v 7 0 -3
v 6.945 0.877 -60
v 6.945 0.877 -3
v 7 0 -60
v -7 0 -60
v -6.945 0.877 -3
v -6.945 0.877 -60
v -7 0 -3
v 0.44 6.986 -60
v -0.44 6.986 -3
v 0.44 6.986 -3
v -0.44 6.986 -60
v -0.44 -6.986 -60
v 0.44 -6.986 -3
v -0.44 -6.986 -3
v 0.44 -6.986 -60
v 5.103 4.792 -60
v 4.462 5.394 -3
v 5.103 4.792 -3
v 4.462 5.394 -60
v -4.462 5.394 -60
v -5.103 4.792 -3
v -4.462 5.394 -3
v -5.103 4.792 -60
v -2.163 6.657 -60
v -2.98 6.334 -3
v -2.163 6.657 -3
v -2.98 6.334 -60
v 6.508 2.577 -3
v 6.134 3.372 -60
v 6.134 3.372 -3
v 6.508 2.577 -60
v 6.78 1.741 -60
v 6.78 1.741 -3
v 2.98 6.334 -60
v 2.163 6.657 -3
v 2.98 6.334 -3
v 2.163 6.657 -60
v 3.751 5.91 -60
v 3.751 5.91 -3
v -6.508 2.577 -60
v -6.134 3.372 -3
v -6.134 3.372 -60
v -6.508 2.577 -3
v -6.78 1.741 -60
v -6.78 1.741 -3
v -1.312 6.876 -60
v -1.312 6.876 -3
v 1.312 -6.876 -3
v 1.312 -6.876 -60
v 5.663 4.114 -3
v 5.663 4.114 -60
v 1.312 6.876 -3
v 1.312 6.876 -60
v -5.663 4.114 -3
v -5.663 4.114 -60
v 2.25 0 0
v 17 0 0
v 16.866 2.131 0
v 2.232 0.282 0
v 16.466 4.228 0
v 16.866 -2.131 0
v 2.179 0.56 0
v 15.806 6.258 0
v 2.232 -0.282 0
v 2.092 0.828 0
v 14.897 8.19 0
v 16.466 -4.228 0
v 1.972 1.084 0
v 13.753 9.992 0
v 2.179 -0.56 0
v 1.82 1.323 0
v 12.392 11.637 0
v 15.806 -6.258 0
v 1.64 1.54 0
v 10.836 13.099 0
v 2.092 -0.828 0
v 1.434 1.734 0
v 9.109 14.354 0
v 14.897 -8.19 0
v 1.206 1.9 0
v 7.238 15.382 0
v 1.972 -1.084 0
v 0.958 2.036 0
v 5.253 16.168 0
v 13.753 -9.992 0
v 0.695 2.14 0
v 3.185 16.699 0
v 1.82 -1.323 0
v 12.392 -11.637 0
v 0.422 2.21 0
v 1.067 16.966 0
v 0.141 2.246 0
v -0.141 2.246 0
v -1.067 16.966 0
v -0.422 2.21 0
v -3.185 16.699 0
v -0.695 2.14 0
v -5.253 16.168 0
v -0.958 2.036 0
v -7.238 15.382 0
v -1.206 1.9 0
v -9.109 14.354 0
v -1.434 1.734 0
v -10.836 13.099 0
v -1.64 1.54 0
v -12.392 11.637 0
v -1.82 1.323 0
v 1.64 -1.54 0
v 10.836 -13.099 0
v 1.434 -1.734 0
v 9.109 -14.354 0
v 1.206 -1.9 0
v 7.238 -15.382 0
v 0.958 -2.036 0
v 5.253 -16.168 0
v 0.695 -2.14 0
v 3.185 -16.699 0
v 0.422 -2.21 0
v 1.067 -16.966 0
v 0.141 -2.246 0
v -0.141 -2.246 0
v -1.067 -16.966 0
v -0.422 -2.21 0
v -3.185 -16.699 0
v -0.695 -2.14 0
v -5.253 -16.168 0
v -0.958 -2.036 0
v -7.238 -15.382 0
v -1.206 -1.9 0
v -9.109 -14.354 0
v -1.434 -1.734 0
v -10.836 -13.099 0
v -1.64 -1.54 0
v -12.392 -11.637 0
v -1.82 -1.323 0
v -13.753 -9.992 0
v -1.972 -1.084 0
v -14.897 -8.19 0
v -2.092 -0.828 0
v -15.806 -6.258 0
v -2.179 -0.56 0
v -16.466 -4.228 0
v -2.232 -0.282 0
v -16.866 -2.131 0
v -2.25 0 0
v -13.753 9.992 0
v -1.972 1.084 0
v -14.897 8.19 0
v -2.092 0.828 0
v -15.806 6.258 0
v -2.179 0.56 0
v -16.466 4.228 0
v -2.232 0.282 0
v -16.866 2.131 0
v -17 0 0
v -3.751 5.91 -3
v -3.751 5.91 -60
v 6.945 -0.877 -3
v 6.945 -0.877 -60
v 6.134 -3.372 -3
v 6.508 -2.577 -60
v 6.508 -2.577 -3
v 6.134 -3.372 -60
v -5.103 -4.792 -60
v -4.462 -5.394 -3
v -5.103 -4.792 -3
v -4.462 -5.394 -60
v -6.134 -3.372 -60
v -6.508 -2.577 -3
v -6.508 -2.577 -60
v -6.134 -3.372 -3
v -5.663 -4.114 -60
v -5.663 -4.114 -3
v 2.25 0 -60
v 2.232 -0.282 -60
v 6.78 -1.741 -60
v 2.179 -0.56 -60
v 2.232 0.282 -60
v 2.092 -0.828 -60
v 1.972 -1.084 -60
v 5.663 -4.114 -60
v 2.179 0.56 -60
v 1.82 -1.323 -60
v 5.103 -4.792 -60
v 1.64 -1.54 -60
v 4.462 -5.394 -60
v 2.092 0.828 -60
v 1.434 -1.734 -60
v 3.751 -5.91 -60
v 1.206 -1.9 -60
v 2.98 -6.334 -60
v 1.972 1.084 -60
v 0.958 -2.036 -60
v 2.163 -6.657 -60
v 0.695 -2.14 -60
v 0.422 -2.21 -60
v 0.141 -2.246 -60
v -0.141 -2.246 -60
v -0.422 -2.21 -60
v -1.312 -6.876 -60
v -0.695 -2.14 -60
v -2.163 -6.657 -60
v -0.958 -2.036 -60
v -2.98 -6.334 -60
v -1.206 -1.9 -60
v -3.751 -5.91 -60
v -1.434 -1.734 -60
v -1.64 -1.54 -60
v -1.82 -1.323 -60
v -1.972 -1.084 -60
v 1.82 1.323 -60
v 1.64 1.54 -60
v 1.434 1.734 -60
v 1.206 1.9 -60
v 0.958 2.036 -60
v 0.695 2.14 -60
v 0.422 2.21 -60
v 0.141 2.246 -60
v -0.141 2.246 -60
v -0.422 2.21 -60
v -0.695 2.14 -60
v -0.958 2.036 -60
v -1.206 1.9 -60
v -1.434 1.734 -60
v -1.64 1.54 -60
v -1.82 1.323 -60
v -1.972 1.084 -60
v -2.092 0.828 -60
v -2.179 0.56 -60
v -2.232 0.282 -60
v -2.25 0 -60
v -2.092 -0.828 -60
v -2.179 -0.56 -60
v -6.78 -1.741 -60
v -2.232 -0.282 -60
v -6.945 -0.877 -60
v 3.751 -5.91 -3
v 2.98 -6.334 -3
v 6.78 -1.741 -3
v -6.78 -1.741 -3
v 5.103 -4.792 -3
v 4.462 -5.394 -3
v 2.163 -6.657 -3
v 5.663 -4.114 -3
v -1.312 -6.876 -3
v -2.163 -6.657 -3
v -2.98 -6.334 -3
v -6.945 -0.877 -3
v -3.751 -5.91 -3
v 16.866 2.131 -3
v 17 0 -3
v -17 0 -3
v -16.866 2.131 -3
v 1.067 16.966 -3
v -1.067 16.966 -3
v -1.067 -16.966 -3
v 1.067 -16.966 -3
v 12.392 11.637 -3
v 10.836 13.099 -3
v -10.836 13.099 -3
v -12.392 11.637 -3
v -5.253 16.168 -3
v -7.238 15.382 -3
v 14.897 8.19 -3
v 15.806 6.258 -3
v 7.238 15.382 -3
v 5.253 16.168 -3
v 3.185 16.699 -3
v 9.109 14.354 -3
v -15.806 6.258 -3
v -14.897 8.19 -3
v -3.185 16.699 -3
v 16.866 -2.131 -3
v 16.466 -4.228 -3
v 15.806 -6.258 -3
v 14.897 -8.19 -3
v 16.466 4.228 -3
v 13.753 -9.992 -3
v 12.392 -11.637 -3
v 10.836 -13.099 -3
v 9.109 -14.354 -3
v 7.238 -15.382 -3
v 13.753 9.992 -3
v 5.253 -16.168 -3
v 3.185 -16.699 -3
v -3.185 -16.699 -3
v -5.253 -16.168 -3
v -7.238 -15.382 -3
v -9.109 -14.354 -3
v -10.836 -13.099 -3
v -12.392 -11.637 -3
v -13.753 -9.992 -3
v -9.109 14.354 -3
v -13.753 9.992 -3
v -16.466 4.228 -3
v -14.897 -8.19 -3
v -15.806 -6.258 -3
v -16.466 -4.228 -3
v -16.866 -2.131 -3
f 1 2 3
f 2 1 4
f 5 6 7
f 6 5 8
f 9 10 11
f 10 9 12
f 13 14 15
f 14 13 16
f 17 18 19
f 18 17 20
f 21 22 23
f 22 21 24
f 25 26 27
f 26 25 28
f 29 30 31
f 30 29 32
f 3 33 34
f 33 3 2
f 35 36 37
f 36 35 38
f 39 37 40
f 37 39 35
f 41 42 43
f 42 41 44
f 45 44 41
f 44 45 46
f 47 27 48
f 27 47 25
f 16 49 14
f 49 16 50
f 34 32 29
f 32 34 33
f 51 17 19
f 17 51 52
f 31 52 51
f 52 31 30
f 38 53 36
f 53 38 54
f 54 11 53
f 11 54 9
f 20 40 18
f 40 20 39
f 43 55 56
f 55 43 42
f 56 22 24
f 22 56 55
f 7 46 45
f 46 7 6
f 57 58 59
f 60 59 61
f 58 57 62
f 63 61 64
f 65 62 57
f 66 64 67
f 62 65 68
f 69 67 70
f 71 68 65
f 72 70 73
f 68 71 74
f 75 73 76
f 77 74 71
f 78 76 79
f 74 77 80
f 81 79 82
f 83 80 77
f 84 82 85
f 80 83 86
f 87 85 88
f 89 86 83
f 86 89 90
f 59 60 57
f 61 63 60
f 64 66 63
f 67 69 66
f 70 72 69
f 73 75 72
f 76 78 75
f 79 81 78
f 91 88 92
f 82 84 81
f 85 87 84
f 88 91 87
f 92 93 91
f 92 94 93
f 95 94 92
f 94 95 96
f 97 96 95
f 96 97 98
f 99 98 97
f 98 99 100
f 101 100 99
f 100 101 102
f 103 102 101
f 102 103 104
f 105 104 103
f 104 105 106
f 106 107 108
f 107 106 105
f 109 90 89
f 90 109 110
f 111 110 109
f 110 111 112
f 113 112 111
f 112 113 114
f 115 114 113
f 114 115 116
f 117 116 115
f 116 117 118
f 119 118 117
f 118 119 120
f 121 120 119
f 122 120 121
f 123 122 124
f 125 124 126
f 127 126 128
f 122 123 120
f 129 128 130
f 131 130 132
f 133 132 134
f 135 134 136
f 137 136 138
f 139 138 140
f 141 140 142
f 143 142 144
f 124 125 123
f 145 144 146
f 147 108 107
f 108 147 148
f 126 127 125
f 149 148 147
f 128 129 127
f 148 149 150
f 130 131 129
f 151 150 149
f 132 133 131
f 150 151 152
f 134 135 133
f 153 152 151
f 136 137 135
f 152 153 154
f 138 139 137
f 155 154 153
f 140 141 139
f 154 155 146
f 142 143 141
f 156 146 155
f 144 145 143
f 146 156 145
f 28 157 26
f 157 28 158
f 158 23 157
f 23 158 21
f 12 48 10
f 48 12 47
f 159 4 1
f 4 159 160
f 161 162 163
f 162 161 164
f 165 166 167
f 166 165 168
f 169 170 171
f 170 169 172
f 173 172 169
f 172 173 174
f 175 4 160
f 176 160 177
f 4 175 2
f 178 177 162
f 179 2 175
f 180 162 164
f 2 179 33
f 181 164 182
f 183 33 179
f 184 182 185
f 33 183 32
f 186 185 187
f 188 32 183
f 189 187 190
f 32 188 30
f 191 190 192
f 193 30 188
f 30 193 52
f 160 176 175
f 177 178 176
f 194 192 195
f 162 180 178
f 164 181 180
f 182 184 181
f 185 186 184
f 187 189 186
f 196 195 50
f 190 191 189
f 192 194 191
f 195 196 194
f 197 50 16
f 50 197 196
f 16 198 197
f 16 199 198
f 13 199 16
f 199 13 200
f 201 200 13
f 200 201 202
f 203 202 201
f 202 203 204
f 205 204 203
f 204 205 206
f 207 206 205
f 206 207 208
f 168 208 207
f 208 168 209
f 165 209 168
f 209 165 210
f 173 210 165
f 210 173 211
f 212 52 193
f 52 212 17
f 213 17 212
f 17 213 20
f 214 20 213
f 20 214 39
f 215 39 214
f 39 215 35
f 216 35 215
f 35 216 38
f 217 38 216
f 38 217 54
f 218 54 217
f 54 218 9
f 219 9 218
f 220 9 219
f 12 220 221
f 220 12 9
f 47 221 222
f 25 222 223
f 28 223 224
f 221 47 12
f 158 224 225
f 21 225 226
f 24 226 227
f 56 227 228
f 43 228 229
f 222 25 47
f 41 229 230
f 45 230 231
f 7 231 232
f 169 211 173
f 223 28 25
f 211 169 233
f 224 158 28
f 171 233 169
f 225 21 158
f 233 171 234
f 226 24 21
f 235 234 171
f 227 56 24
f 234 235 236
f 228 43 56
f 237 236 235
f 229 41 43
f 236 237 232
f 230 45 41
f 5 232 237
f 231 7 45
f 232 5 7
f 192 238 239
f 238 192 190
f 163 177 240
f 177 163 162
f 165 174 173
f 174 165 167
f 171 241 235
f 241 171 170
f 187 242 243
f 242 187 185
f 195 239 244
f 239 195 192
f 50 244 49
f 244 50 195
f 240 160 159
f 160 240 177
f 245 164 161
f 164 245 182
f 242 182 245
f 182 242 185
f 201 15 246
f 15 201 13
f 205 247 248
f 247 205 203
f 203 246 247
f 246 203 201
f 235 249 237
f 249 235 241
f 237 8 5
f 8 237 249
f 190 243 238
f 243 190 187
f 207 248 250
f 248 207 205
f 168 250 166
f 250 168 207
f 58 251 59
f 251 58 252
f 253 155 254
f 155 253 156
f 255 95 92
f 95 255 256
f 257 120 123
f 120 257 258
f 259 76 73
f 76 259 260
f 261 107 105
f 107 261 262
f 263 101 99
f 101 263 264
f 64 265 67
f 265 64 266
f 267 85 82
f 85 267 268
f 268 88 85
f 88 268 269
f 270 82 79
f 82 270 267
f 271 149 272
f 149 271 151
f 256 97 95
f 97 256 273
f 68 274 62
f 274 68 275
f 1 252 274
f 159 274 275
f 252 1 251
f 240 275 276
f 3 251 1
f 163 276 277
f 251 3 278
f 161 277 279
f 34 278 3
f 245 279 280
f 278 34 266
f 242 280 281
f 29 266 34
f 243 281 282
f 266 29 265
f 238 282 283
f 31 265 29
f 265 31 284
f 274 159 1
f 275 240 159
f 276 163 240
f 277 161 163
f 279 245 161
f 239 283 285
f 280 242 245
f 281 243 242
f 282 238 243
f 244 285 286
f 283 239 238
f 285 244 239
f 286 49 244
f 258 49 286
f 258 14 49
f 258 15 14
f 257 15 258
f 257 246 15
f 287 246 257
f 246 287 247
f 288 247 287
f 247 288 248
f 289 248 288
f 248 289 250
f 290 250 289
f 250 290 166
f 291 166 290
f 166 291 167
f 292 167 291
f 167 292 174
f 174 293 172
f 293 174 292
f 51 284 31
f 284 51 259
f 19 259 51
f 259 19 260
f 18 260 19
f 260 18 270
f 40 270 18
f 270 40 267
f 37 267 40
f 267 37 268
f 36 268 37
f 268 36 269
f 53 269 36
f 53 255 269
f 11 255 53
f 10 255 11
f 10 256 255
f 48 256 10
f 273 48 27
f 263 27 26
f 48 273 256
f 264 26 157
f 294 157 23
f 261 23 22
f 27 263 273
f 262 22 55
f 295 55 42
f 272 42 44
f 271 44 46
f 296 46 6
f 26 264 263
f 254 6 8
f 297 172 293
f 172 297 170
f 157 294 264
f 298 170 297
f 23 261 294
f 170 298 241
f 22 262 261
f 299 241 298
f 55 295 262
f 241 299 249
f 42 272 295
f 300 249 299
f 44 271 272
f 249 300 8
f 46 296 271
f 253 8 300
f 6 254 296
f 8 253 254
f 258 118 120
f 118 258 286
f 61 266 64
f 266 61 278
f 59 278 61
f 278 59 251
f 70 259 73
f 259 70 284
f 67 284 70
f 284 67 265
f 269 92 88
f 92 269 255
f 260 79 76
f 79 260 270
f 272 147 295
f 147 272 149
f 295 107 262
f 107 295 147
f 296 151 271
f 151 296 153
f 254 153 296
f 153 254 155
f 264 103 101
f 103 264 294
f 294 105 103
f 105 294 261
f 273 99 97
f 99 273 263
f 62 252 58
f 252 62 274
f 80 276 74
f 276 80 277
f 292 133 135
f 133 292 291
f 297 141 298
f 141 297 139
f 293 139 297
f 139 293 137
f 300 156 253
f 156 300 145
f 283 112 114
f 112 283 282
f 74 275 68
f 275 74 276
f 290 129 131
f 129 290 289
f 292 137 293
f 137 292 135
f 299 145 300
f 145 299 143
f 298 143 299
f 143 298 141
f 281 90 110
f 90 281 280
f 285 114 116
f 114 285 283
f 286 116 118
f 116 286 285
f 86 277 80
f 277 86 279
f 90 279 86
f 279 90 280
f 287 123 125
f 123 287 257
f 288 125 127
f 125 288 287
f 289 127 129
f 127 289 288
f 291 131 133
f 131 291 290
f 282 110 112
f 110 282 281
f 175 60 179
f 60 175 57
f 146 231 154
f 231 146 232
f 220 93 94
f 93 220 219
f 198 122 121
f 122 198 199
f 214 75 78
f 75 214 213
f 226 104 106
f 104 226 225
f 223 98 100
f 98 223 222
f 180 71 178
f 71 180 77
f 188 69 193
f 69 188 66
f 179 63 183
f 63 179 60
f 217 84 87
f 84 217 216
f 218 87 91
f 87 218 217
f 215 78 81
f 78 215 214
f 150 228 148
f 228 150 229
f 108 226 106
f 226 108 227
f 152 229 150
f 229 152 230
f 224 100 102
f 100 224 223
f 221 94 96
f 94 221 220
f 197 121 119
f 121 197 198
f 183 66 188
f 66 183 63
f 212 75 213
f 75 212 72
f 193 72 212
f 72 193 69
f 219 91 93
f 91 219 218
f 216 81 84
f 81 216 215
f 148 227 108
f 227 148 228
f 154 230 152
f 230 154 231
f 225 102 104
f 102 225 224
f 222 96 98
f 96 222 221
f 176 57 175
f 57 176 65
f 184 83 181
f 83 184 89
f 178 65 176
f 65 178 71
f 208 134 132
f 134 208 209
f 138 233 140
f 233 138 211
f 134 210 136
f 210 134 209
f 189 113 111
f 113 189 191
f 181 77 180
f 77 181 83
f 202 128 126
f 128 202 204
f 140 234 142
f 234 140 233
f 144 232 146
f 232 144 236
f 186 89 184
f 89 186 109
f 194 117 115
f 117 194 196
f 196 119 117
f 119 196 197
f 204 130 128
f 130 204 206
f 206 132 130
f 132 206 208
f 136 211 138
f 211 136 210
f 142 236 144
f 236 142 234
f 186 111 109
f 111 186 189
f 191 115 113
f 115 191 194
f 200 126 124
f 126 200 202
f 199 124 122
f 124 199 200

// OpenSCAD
$fn = 50;


difference() {
	union() {
		translate(v = [0, 0, -60.0000000000]) {
			cylinder(h = 60, r = 7.0000000000);
		}
		translate(v = [0, 0, -3.0000000000]) {
			cylinder(h = 3, r = 17.0000000000);
		}
	}
	union() {
		#translate(v = [0, 0, -60]) {
			cylinder(h = 60, r = 2.2500000000);
		}
	}
}
